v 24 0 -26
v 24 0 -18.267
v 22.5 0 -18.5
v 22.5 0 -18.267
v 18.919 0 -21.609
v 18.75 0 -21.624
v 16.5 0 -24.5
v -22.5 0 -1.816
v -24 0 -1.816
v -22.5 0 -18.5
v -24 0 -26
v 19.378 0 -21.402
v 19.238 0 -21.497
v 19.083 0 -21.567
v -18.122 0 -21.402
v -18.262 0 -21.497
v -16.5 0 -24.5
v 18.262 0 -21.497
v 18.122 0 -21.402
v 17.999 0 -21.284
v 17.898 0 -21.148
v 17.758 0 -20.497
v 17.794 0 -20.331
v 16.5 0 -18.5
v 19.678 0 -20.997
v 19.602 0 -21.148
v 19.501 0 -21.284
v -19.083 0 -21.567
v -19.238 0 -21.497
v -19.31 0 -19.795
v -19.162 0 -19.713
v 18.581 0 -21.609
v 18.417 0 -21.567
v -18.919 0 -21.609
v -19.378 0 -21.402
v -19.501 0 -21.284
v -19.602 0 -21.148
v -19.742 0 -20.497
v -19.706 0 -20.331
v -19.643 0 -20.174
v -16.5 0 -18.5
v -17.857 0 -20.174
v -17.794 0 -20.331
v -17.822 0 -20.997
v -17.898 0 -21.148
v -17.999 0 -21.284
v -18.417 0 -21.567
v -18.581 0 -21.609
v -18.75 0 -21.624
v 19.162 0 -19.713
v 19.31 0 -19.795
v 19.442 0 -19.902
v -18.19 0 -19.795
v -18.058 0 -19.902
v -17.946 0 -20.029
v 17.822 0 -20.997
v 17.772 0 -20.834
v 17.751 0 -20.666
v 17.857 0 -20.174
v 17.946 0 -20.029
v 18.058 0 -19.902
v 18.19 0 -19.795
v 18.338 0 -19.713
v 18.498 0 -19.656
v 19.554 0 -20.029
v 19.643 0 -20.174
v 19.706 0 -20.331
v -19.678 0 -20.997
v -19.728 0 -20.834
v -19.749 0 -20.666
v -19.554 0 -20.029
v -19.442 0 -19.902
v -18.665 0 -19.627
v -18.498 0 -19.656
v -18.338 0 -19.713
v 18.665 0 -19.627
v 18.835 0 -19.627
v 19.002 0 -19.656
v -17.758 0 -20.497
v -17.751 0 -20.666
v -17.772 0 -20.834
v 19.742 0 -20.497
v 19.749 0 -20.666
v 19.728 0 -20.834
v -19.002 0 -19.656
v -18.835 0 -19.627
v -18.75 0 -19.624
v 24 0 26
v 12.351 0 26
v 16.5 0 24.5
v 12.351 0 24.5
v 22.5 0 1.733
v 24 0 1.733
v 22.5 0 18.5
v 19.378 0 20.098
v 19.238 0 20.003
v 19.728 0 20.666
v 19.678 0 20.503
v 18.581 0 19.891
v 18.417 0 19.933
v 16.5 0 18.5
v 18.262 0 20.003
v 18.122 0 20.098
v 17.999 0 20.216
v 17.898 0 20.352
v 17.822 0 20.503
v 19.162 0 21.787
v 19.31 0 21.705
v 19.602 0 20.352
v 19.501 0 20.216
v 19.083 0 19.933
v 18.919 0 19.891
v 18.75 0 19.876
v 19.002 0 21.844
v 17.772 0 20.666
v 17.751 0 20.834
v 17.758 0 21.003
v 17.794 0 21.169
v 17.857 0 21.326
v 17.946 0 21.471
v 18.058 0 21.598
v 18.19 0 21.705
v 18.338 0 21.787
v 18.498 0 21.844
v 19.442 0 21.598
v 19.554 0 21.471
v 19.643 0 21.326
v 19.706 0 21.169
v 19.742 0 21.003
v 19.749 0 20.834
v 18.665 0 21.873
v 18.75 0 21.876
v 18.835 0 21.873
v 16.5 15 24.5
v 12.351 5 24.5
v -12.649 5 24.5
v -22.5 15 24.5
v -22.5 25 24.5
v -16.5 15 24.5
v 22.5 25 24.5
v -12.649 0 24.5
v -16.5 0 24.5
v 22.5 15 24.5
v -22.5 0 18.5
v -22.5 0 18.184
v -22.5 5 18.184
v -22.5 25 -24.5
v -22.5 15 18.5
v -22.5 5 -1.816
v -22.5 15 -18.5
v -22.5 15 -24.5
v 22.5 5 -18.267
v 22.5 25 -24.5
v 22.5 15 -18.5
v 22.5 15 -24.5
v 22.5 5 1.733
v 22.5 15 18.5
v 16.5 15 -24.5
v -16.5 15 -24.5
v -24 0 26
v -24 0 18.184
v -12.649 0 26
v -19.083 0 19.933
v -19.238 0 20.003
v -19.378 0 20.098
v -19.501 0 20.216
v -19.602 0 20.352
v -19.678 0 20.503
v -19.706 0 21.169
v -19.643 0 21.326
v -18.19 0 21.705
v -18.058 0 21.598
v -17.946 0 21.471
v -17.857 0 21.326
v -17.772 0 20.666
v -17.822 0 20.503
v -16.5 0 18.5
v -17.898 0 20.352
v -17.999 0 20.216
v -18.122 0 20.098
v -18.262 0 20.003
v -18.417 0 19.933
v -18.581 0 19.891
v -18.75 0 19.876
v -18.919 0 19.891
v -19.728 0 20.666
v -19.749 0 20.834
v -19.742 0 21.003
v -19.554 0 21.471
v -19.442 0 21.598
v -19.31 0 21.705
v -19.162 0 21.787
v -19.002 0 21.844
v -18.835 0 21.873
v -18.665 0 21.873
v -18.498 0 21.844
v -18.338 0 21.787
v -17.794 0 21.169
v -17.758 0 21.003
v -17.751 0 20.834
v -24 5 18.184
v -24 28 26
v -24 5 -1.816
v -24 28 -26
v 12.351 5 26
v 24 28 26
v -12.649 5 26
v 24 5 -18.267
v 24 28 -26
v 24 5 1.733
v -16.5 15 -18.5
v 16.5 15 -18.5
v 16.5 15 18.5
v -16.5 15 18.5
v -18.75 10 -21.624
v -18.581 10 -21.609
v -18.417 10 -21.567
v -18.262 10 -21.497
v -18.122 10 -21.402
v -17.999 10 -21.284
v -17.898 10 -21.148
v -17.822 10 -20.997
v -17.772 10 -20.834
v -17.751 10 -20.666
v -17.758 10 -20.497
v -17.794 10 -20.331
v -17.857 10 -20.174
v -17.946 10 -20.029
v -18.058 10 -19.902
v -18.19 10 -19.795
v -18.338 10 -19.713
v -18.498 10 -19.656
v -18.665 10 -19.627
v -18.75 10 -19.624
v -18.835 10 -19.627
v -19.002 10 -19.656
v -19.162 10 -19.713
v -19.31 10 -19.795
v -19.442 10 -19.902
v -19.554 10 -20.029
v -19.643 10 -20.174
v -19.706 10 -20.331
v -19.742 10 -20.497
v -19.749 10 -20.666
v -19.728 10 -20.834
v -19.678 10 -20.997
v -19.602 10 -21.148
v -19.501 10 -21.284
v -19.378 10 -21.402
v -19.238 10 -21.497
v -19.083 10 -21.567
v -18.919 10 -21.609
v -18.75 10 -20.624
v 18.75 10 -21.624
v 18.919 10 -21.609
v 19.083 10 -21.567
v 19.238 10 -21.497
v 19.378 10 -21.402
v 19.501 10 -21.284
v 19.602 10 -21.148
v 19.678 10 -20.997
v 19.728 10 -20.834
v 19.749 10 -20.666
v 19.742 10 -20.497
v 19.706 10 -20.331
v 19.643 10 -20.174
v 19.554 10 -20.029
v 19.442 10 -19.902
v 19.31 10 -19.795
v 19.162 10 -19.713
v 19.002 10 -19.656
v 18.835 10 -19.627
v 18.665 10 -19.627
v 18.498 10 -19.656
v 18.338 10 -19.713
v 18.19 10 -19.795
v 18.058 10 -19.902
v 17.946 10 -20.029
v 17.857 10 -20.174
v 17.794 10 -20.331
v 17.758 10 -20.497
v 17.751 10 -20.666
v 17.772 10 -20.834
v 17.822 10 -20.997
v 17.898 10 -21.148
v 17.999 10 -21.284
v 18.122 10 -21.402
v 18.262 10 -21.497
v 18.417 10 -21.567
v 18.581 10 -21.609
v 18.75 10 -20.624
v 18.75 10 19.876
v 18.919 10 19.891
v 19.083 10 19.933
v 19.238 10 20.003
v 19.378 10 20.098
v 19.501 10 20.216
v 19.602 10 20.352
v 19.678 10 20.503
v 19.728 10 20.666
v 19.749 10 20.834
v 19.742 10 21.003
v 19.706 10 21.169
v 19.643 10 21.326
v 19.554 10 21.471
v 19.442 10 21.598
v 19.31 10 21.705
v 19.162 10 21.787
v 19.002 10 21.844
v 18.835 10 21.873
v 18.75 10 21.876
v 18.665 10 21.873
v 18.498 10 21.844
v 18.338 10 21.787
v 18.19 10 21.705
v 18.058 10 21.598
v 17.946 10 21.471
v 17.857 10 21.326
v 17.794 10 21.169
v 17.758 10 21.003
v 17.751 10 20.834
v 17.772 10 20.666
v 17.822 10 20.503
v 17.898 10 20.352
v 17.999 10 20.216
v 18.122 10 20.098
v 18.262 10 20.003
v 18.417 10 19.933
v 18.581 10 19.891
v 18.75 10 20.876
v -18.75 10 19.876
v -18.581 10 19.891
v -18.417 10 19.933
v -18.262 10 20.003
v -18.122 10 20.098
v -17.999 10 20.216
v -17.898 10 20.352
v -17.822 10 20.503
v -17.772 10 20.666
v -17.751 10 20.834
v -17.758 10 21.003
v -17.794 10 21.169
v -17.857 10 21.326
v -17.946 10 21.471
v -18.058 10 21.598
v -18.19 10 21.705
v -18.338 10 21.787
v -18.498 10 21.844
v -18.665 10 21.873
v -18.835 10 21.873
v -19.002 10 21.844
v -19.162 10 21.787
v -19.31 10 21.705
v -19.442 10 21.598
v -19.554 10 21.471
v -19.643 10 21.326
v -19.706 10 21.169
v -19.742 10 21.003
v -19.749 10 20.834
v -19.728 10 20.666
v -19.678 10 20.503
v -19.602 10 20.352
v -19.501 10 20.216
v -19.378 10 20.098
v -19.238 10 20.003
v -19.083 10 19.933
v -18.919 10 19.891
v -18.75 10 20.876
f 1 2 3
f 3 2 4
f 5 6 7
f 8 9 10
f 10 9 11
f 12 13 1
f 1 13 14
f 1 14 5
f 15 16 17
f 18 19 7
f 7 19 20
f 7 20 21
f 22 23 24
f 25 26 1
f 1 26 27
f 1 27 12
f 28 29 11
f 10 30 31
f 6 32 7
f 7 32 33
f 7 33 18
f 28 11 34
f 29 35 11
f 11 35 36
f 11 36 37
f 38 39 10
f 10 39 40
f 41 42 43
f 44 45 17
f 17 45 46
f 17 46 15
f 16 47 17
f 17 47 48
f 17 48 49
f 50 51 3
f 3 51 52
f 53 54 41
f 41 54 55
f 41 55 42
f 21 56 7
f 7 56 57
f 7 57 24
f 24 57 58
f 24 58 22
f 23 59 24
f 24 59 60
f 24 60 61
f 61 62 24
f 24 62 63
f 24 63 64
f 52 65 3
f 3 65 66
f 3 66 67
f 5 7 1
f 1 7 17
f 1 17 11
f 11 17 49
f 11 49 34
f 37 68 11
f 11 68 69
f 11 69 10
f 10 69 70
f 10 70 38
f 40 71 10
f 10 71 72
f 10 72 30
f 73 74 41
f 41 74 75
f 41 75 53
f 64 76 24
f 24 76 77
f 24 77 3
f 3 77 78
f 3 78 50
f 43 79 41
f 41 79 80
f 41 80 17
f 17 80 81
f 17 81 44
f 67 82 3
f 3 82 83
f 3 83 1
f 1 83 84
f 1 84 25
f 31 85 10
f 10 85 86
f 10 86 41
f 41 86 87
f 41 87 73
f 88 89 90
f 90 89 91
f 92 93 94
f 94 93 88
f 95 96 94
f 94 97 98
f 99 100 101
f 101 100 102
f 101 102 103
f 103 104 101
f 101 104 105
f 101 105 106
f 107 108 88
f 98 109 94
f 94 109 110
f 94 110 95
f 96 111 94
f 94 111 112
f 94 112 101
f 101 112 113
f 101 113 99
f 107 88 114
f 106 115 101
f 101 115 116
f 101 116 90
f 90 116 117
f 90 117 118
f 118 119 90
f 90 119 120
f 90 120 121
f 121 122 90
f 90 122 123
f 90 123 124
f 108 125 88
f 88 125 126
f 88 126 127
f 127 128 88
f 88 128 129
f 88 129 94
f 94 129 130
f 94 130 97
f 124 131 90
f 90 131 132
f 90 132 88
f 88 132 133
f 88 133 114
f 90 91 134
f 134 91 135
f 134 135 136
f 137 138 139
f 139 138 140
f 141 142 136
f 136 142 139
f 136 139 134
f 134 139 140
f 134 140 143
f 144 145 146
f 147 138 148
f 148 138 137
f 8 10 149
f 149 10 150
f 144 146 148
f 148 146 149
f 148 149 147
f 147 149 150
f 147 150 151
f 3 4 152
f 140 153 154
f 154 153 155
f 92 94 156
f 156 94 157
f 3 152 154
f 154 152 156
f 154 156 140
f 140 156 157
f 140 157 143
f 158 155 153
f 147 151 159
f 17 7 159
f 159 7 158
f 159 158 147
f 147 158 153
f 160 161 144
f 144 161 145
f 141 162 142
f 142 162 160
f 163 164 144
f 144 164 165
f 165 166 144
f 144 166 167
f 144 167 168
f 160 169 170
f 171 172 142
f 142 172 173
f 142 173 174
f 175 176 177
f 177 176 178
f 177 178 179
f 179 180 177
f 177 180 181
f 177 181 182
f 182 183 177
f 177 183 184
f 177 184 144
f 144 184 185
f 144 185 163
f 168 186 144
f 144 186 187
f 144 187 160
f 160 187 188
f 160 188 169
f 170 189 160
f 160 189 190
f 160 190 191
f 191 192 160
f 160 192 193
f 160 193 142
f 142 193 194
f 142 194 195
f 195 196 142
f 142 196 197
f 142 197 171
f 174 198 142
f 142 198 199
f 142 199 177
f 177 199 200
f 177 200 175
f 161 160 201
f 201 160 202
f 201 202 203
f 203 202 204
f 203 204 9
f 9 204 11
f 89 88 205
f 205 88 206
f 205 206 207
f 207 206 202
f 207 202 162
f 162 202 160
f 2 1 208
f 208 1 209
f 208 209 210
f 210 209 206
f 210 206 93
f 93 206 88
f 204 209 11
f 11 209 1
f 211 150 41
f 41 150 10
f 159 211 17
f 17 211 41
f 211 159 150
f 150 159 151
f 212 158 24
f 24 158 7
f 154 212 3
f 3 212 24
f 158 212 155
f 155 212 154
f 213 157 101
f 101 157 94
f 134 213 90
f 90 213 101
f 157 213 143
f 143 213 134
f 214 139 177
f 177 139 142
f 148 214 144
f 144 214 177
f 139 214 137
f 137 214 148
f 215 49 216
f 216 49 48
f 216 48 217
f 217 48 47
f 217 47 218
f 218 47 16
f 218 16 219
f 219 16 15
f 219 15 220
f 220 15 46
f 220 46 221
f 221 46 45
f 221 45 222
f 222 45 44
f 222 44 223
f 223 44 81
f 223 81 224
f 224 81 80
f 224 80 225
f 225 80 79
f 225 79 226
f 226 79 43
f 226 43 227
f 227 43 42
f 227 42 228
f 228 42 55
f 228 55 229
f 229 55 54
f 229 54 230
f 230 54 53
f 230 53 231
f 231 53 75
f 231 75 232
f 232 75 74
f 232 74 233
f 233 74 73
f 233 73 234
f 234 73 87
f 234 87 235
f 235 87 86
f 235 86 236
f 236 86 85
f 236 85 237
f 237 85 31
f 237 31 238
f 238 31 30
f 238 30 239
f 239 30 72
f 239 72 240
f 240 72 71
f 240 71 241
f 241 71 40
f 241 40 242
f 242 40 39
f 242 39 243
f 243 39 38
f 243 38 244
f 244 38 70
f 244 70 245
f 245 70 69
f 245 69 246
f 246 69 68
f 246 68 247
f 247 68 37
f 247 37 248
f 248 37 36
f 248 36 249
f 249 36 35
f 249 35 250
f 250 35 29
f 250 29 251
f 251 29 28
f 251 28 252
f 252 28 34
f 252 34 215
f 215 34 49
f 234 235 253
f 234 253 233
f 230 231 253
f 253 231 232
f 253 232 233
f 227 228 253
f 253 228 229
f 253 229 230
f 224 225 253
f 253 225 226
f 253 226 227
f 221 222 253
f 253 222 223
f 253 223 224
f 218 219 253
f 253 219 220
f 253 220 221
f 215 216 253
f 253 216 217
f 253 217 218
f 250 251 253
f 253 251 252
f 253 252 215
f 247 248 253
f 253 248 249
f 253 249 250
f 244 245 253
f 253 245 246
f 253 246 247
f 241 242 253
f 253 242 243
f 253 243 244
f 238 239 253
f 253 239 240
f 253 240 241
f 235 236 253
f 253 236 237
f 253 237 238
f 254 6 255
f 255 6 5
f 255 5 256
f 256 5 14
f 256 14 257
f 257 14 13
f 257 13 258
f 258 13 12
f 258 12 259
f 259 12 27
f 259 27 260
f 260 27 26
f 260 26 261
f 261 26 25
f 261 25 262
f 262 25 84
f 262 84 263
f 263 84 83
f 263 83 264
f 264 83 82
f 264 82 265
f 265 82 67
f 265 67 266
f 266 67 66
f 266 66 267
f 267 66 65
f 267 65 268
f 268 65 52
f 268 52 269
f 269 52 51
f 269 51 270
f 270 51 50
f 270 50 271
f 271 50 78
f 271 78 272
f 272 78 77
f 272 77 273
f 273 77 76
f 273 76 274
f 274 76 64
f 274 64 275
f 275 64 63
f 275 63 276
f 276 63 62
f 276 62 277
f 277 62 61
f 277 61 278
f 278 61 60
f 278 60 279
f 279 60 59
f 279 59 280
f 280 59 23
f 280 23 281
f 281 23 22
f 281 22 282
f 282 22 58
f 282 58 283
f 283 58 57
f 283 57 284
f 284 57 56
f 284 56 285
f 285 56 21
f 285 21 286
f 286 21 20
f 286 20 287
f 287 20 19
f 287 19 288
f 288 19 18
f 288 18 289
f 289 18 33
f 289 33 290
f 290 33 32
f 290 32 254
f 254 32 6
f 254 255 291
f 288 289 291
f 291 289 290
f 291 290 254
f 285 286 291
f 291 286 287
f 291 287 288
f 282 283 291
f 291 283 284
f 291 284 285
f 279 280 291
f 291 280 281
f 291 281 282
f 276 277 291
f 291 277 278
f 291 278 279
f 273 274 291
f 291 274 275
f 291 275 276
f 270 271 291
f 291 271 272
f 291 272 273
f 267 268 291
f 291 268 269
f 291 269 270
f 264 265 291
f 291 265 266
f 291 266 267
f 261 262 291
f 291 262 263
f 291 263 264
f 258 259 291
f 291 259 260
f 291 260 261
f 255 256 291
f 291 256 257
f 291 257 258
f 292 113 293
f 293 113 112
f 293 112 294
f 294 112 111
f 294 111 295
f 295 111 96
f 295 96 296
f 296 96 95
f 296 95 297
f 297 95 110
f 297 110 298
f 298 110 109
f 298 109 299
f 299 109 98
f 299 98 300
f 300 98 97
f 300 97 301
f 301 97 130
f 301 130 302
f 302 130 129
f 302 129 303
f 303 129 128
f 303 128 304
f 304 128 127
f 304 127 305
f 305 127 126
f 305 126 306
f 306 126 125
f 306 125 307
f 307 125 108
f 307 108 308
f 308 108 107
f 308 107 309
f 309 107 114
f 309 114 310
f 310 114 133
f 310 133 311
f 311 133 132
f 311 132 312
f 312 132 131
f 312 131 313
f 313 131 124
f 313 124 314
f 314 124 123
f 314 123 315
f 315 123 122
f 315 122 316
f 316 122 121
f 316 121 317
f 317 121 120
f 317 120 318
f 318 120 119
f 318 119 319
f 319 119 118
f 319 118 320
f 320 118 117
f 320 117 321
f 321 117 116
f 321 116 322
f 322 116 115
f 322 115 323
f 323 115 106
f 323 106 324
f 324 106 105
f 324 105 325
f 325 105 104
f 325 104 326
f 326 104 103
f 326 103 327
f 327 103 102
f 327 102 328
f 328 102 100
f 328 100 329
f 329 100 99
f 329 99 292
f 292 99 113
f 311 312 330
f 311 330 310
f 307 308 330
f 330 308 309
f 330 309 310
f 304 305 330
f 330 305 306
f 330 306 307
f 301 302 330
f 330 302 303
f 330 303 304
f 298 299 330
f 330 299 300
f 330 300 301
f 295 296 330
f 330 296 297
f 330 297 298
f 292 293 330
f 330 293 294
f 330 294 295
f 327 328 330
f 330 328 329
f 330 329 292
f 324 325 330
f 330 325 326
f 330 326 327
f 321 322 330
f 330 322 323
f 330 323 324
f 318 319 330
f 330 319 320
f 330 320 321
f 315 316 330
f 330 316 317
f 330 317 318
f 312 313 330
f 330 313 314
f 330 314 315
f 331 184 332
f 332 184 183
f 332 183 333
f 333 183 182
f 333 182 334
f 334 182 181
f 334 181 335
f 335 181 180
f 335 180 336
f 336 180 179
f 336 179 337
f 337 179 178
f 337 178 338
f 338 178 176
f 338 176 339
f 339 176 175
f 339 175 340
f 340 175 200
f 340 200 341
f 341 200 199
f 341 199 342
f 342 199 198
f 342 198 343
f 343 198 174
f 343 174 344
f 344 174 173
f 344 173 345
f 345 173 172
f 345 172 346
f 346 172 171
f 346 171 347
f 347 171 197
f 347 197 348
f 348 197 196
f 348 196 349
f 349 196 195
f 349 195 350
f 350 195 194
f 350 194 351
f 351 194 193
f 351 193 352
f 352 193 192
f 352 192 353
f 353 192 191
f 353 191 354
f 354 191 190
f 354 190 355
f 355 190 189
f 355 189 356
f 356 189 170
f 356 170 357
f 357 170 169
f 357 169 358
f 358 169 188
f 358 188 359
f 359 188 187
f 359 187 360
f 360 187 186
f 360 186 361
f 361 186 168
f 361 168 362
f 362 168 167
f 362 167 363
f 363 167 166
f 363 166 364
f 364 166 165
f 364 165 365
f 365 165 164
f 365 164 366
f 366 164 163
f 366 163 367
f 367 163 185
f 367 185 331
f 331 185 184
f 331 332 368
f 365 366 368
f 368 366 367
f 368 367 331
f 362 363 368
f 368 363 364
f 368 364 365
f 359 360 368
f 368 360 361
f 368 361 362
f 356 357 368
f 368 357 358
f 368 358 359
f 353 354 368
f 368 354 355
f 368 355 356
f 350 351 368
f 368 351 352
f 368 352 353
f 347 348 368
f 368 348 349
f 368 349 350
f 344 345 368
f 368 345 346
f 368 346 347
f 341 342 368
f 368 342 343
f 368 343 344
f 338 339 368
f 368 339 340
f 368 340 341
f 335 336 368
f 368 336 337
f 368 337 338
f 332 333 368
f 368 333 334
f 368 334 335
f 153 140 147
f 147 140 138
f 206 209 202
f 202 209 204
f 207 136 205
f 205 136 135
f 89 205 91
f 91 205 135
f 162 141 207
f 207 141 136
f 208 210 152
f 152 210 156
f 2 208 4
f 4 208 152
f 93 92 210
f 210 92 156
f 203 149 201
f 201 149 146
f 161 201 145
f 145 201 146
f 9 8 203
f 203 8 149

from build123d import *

# Parameters (mm, degrees)
SKETCH1_W           = 48
SKETCH1_H           = 52
SKETCH1_W_2         = 45
SKETCH1_H_2         = 49
BOSS_EXTRUDE1_DEPTH = 25
SKETCH2_W           = 6
SKETCH2_H           = 6
BOSS_EXTRUDE2_DEPTH = 15
SKETCH3_R           = 1
CUT_EXTRUDE1_DEPTH  = 10
SKETCH4_W           = 48
SKETCH4_H           = 52
BOSS_EXTRUDE3_DEPTH = 3
SKETCH5_W           = 25
SKETCH5_H           = 5
CUT_EXTRUDE2_DEPTH  = 3
SKETCH6_W           = 20
SKETCH6_H           = 5
CUT_EXTRUDE3_DEPTH  = 3
SKETCH7_W           = 20
SKETCH7_H           = 5
CUT_EXTRUDE4_DEPTH  = 3


with BuildPart() as part:
    # Sketch1 → Boss-Extrude1 (new body)
    with BuildSketch(Plane(origin=(0, 0, 0), x_dir=(1, 0, 0), z_dir=(0, 1, 0))):
        Rectangle(SKETCH1_W, SKETCH1_H)
        Rectangle(SKETCH1_W_2, SKETCH1_H_2, mode=Mode.SUBTRACT)
    extrude(amount=BOSS_EXTRUDE1_DEPTH)

    # Sketch2 → Boss-Extrude2 (add)
    with BuildSketch(Plane(origin=(0, 0, 0), x_dir=(1, 0, 0), z_dir=(0, 1, 0))):
        with Locations((-19.5, 21.5)):
            Rectangle(SKETCH2_W, SKETCH2_H)
        with Locations((19.5, 21.5)):
            Rectangle(SKETCH2_W, SKETCH2_H)
        with Locations((19.5, -21.5)):
            Rectangle(SKETCH2_W, SKETCH2_H)
        with Locations((-19.5, -21.5)):
            Rectangle(SKETCH2_W, SKETCH2_H)
    extrude(amount=BOSS_EXTRUDE2_DEPTH)

    # Sketch3 → Cut-Extrude1 (cut)
    with BuildSketch(Plane(origin=(0, 0, 0), x_dir=(1, 0, 0), z_dir=(0, 1, 0))):
        with Locations(Location((-18.75, 20.623770818, 0), (0, 0, 270))):
            Circle(SKETCH3_R)
        with Locations(Location((18.75, 20.623770818, 0), (0, 0, 90))):
            Circle(SKETCH3_R)
        with Locations(Location((18.75, -20.876229182, 0), (0, 0, 270))):
            Circle(SKETCH3_R)
        with Locations(Location((-18.75, -20.876229182, 0), (0, 0, 90))):
            Circle(SKETCH3_R)
    extrude(amount=CUT_EXTRUDE1_DEPTH, mode=Mode.SUBTRACT)

    # Sketch4 → Boss-Extrude3 (add)
    with BuildSketch(Plane(origin=(0, 25, 0), x_dir=(1, 0, 0), z_dir=(0, 1, 0))):
        Rectangle(SKETCH4_W, SKETCH4_H)
    extrude(amount=BOSS_EXTRUDE3_DEPTH)

    # Sketch5 → Cut-Extrude2 (cut)
    with BuildSketch(Plane.XY.offset(26)):
        with Locations((-0.148610248, 2.5)):
            Rectangle(SKETCH5_W, SKETCH5_H)
    extrude(amount=-CUT_EXTRUDE2_DEPTH, mode=Mode.SUBTRACT)

    # Sketch6 → Cut-Extrude3 (cut)
    with BuildSketch(Plane(origin=(24, 0, 0), x_dir=(0, 0, -1), z_dir=(1, 0, 0))):
        with Locations((8.266776226, 2.5)):
            Rectangle(SKETCH6_W, SKETCH6_H)
    extrude(amount=-CUT_EXTRUDE3_DEPTH, mode=Mode.SUBTRACT)

    # Sketch7 → Cut-Extrude4 (cut)
    with BuildSketch(Plane.ZY.offset(24)):
        with Locations((8.18424176, 2.5)):
            Rectangle(SKETCH7_W, SKETCH7_H)
    extrude(amount=-CUT_EXTRUDE4_DEPTH, mode=Mode.SUBTRACT)


solid = part.part
